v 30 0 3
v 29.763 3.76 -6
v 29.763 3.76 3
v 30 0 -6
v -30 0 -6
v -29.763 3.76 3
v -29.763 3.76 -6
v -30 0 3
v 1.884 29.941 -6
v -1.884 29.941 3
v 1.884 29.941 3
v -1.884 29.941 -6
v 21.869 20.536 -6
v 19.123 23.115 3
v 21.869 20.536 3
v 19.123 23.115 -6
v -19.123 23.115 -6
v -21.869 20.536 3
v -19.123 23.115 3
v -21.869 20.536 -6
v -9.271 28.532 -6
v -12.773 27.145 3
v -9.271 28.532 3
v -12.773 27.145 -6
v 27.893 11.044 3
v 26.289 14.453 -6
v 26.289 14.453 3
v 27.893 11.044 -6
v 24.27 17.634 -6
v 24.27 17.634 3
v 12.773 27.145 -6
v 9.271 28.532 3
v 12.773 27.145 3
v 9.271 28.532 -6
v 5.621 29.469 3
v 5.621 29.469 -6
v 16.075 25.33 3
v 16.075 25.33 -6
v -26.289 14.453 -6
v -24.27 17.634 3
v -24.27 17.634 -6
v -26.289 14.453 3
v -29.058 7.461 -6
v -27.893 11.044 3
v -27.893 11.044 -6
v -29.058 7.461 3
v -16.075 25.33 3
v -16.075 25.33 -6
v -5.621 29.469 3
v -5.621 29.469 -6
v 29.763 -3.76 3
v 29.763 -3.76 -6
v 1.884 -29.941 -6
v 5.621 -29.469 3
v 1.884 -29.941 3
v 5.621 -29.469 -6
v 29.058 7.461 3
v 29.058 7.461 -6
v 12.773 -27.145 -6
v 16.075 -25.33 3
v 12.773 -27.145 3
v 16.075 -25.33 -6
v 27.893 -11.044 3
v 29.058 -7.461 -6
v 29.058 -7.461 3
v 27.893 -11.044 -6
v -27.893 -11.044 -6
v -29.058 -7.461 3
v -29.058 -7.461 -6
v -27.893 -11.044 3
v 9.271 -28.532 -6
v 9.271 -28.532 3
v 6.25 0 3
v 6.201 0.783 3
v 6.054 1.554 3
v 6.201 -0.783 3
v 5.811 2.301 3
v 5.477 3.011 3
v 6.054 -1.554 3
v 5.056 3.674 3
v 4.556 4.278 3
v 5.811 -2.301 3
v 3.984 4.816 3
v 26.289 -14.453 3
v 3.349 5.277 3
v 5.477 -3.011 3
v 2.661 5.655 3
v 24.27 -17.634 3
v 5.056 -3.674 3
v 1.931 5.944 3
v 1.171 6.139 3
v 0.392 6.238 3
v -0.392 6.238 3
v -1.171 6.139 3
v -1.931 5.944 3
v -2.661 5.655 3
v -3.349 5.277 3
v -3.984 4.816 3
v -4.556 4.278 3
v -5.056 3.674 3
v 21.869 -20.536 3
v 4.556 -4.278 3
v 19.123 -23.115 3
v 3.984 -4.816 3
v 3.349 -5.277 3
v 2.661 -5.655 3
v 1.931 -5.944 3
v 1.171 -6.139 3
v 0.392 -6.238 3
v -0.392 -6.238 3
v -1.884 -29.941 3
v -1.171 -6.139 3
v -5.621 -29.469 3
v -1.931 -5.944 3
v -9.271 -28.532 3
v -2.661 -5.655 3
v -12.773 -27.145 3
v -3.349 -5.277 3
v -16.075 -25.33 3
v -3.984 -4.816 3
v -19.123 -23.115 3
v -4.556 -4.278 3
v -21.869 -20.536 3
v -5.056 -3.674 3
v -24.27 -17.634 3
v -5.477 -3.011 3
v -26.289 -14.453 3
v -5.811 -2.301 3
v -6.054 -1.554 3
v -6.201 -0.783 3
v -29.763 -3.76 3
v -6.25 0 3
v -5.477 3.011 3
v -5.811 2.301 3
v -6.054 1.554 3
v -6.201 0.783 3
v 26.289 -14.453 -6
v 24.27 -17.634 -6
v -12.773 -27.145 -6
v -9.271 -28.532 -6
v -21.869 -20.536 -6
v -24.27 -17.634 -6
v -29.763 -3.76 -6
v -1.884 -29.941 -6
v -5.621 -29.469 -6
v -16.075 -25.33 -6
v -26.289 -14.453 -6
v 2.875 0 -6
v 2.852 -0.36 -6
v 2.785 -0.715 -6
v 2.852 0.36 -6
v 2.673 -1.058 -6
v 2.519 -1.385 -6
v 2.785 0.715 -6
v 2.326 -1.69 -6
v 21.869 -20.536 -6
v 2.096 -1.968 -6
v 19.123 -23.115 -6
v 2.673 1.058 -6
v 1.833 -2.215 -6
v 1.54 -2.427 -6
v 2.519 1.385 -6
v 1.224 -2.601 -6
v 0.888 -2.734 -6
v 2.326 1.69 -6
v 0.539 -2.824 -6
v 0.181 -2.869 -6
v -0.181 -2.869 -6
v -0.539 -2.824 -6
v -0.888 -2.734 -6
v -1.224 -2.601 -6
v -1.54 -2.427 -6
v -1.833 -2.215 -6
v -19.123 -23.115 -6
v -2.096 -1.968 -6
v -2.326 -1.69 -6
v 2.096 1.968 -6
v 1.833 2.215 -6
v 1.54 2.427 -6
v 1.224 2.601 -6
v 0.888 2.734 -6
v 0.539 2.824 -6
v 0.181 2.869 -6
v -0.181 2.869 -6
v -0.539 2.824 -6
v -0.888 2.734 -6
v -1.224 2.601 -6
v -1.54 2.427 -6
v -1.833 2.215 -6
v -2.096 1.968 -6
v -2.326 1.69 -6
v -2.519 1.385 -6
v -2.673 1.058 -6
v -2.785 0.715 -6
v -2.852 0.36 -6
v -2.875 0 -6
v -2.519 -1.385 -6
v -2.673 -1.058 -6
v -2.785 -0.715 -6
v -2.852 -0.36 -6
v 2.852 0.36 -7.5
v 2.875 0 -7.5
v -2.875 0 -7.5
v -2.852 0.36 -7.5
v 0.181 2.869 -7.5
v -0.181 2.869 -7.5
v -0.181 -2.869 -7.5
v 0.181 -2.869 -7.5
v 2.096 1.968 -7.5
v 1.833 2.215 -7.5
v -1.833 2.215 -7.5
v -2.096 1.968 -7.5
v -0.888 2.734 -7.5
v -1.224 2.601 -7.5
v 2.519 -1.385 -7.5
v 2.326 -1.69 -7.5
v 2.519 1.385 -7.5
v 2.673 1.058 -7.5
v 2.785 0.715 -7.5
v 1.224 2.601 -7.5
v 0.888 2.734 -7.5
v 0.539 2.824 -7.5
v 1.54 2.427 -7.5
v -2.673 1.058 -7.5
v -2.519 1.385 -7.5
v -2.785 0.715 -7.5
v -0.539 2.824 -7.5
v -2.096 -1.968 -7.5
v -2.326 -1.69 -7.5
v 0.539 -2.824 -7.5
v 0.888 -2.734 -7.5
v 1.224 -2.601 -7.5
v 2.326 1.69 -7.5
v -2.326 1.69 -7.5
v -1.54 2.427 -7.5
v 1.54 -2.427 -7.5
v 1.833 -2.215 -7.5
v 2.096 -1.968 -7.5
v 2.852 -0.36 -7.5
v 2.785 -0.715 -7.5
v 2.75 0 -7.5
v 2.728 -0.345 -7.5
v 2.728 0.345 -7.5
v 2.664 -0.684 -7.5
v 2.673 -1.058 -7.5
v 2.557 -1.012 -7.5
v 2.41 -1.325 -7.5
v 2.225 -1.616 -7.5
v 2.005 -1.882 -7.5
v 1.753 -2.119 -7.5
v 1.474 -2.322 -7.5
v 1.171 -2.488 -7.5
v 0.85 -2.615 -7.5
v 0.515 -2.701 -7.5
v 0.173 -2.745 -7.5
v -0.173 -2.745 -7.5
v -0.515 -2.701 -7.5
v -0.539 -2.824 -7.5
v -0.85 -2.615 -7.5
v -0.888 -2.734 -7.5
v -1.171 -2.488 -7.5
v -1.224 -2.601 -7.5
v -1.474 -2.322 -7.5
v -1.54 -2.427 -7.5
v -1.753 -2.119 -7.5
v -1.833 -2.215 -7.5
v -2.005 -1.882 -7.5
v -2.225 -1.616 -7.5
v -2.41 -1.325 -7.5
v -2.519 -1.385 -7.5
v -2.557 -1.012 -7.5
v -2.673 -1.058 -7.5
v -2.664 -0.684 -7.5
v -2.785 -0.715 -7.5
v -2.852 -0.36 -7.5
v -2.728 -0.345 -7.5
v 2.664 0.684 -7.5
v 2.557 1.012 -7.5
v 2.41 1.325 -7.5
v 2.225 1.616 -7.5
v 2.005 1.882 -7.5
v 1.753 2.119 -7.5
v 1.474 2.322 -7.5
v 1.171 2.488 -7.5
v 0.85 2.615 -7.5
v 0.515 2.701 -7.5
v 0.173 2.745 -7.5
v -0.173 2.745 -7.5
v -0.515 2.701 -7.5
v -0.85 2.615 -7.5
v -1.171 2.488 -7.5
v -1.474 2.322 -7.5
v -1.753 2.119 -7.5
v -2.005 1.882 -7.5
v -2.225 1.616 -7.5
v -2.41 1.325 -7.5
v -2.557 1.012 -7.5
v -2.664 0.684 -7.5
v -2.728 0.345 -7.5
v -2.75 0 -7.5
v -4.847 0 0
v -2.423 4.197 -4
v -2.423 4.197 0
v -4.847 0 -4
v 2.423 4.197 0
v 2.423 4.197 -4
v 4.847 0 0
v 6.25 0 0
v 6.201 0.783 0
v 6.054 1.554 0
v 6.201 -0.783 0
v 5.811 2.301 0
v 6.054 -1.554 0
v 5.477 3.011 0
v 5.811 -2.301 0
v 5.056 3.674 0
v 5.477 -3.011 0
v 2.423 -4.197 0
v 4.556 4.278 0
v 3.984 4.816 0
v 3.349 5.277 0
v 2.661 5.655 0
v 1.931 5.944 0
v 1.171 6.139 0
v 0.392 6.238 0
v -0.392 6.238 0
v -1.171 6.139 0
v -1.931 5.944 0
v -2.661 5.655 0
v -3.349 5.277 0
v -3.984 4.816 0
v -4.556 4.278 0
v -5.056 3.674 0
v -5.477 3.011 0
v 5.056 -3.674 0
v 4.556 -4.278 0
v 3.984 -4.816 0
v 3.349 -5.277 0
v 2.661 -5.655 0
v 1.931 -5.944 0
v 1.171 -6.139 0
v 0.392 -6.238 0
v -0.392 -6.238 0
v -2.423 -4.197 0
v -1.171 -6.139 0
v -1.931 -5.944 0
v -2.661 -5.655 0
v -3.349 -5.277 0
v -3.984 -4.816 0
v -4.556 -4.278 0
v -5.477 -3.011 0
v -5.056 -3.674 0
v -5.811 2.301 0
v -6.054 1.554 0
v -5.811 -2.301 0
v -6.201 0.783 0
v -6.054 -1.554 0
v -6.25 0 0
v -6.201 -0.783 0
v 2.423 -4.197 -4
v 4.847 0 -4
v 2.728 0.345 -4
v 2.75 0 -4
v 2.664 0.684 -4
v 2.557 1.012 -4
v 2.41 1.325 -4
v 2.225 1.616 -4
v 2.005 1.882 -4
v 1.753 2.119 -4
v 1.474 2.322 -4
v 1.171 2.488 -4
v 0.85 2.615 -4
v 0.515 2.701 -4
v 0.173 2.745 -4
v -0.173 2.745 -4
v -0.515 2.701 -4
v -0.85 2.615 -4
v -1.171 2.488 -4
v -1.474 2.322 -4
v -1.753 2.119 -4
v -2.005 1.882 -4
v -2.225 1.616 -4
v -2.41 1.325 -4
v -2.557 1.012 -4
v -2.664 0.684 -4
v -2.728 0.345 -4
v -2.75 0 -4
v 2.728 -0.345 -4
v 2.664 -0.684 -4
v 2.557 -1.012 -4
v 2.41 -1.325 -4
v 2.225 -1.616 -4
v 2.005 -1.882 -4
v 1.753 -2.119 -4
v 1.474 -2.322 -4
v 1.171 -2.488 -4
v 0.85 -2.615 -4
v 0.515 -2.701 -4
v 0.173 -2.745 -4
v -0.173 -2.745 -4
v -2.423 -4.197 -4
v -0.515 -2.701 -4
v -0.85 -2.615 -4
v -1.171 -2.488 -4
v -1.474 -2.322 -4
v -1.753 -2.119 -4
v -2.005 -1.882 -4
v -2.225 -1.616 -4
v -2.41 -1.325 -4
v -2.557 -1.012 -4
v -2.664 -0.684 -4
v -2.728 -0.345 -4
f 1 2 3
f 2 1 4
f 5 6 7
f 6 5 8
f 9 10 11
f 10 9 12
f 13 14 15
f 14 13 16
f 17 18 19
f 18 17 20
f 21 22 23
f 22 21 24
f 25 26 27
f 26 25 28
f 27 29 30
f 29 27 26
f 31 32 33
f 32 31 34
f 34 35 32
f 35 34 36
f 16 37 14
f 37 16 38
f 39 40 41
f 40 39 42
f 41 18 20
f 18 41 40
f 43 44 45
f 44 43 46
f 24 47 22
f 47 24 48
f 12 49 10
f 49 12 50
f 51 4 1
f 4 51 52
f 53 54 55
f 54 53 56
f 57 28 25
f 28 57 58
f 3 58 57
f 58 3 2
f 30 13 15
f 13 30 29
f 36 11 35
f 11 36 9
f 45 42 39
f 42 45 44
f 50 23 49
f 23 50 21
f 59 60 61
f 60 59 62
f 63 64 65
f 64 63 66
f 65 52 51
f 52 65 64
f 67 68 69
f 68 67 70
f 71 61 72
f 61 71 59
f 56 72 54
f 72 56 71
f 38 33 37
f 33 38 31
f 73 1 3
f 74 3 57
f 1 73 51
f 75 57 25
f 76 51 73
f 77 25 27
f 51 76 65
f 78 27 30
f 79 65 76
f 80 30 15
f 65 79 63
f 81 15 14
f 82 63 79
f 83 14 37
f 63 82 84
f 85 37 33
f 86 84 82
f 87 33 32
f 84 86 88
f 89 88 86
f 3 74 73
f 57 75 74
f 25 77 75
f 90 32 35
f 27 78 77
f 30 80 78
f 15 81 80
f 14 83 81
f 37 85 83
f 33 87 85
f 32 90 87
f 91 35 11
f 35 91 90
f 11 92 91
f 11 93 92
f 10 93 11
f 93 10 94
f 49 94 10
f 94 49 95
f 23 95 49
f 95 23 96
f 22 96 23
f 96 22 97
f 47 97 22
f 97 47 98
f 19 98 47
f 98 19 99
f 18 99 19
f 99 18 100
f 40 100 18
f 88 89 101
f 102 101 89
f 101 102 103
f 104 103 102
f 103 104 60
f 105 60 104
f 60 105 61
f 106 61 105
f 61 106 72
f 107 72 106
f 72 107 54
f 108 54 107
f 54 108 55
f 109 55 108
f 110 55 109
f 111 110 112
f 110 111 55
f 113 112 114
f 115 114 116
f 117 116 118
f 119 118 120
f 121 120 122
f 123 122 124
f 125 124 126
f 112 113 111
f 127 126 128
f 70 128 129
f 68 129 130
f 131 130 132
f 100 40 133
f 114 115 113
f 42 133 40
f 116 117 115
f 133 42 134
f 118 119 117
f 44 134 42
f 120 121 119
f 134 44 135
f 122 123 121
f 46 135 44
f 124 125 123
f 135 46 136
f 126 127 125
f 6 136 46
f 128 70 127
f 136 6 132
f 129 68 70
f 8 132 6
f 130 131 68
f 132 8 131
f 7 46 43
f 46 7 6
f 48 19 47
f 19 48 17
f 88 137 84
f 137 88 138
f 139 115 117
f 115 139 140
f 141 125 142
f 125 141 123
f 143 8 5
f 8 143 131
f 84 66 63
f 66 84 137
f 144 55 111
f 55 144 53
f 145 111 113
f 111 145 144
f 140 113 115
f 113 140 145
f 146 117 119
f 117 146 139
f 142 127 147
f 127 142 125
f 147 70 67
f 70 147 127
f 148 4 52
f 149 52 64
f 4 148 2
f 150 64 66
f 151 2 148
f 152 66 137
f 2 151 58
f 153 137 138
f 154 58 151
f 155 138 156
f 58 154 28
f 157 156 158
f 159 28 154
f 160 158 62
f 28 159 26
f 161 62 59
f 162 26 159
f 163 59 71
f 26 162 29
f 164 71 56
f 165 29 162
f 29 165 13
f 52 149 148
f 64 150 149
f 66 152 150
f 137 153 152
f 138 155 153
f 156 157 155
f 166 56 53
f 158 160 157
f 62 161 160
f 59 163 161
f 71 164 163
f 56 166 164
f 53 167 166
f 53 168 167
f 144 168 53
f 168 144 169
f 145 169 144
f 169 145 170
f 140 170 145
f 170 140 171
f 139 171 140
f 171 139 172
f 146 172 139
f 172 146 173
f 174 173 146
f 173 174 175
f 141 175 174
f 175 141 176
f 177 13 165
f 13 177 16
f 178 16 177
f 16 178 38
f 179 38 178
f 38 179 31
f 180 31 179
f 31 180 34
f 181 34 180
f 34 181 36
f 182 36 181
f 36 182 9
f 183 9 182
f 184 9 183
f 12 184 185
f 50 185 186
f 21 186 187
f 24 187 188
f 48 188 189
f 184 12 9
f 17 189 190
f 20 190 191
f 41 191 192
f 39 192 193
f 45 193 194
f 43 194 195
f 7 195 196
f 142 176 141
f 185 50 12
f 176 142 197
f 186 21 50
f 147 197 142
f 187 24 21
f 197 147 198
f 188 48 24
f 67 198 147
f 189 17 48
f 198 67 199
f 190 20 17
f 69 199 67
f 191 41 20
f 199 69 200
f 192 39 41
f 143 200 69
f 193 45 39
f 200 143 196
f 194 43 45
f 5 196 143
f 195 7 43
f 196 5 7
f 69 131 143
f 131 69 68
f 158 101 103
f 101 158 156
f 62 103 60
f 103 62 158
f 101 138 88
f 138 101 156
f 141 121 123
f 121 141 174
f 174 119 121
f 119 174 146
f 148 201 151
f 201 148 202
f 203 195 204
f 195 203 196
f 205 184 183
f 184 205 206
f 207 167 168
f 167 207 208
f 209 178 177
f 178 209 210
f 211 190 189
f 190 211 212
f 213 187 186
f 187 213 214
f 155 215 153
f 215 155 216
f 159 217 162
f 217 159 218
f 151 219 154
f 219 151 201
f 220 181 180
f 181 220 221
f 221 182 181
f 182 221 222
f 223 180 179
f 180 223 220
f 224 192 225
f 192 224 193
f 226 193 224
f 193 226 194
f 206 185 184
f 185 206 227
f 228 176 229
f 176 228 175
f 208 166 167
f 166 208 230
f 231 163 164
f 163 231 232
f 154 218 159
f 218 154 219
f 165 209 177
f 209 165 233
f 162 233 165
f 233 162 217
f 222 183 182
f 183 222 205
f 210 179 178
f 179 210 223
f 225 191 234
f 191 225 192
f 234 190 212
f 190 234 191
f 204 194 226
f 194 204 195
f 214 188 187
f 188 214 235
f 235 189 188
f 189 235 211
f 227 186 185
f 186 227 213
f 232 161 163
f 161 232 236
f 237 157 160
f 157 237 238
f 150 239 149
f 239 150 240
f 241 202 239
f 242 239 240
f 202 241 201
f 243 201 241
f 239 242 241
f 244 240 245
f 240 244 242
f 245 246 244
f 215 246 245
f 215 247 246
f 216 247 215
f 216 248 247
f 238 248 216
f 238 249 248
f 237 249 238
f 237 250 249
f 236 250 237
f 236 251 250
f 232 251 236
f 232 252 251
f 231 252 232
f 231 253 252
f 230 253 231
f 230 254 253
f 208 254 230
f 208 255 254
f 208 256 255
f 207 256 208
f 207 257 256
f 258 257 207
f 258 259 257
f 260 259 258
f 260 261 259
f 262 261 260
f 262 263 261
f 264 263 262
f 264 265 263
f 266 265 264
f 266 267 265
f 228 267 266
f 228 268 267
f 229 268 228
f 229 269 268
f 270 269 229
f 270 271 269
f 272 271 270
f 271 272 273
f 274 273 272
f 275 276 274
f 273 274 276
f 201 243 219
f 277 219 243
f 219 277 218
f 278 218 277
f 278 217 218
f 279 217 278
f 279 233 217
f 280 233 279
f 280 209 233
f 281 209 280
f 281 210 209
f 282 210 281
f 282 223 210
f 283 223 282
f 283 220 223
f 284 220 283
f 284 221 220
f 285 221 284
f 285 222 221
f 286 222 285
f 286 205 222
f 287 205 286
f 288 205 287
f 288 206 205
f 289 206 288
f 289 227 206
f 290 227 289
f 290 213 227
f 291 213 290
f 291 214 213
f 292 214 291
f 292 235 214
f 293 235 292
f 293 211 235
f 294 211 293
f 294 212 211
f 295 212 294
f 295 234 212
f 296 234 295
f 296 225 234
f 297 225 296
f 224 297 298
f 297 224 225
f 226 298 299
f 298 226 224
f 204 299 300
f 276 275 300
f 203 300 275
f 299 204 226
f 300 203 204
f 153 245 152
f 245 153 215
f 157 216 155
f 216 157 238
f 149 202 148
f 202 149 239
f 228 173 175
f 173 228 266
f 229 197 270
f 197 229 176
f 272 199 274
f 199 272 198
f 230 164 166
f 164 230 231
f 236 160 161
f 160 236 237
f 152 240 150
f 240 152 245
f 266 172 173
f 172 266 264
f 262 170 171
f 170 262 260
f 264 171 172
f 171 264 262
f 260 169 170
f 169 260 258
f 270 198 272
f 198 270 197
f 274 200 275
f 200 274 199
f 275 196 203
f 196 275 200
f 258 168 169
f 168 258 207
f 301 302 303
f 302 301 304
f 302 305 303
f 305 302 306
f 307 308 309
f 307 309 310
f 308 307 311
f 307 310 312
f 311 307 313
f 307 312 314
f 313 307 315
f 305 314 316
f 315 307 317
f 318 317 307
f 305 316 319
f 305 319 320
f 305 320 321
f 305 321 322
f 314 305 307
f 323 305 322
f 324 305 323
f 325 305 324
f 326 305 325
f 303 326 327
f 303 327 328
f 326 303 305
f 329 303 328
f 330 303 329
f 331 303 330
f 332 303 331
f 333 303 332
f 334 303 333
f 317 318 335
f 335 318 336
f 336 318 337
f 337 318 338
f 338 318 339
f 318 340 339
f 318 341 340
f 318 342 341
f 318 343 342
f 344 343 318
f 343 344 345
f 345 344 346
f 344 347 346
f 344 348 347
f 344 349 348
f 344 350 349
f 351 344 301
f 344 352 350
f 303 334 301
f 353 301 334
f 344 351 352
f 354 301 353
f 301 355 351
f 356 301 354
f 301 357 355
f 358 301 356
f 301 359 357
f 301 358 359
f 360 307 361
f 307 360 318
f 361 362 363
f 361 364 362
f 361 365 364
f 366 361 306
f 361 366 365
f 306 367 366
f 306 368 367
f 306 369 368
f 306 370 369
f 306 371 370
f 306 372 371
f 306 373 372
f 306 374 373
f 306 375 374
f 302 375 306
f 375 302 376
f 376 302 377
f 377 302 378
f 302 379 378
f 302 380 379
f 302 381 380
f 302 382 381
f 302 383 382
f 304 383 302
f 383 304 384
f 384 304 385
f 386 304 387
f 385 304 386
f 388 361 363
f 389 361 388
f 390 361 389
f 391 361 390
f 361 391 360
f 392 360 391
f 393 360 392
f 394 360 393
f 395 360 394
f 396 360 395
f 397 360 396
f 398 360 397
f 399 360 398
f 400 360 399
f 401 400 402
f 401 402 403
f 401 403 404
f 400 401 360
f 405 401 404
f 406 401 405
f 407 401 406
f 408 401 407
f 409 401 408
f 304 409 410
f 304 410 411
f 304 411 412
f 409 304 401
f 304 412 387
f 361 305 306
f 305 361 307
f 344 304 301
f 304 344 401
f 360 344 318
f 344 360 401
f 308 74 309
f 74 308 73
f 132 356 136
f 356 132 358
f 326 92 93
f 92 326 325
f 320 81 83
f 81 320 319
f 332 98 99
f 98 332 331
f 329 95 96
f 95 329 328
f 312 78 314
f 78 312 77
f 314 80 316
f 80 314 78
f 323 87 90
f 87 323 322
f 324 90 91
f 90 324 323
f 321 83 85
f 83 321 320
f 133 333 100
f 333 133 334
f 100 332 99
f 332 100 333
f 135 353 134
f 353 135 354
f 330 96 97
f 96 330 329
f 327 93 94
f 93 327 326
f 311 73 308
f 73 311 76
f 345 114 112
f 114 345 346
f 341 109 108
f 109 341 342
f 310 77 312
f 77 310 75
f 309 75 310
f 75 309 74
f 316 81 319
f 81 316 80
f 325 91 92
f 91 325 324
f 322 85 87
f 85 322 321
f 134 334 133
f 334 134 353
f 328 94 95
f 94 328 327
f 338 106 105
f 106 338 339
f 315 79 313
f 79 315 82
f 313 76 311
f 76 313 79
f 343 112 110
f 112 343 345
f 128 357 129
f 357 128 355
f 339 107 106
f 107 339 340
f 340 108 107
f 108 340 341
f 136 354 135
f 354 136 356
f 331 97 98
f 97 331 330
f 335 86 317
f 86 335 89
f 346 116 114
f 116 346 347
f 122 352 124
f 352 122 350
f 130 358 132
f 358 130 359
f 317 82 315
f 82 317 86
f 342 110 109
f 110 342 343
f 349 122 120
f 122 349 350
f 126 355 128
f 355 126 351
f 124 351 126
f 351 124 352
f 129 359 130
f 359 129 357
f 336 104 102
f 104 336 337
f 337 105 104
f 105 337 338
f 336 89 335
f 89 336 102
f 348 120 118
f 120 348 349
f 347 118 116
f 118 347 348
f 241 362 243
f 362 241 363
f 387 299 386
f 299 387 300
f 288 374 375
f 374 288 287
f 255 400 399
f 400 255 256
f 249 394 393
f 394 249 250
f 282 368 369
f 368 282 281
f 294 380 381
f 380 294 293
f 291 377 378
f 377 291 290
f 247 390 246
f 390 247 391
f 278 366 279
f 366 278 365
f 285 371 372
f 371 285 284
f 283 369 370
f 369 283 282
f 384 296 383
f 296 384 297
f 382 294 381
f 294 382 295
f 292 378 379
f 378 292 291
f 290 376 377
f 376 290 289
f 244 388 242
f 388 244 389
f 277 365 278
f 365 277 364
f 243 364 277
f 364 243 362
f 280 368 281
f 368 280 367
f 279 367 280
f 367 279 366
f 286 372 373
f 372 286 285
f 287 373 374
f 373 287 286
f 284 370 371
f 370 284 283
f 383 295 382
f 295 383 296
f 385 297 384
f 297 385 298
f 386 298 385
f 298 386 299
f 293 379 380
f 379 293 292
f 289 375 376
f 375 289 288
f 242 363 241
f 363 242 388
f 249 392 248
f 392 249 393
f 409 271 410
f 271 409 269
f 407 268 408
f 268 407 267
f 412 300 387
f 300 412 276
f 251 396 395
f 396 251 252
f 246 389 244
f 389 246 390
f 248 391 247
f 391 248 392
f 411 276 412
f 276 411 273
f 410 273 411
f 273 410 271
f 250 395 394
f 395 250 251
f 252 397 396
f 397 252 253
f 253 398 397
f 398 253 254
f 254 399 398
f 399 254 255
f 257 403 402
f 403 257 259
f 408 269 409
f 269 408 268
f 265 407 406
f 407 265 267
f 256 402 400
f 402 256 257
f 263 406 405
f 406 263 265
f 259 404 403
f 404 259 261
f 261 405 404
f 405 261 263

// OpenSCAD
$fn = 50;


difference() {
	union() {
		translate(v = [0, 0, -6.0000000000]) {
			cylinder(h = 9.0000000000, r = 30.0000000000);
		}
		#translate(v = [0, 0, -7.5000000000]) {
			cylinder(h = 7.5000000000, r = 2.8750000000);
		}
	}
	union() {
		translate(v = [0, 0, 0]) {
			rotate(a = [0, 0, 0]) {
				difference() {
					union() {
						translate(v = [0, 0, -4]) {
							linear_extrude(height = 4) {
								polygon(points = [[4.8468000000, 0.0000000000], [2.4234000000, 4.1974519271], [-2.4234000000, 4.1974519271], [-4.8468000000, 0.0000000000], [-2.4234000000, -4.1974519271], [2.4234000000, -4.1974519271]]);
							}
						}
					}
					union();
				}
			}
		}
		#cylinder(h = 3, r = 6.2500000000);
		#translate(v = [0, 0, -100.0000000000]) {
			cylinder(h = 200, r = 2.7500000000);
		}
	}
}
